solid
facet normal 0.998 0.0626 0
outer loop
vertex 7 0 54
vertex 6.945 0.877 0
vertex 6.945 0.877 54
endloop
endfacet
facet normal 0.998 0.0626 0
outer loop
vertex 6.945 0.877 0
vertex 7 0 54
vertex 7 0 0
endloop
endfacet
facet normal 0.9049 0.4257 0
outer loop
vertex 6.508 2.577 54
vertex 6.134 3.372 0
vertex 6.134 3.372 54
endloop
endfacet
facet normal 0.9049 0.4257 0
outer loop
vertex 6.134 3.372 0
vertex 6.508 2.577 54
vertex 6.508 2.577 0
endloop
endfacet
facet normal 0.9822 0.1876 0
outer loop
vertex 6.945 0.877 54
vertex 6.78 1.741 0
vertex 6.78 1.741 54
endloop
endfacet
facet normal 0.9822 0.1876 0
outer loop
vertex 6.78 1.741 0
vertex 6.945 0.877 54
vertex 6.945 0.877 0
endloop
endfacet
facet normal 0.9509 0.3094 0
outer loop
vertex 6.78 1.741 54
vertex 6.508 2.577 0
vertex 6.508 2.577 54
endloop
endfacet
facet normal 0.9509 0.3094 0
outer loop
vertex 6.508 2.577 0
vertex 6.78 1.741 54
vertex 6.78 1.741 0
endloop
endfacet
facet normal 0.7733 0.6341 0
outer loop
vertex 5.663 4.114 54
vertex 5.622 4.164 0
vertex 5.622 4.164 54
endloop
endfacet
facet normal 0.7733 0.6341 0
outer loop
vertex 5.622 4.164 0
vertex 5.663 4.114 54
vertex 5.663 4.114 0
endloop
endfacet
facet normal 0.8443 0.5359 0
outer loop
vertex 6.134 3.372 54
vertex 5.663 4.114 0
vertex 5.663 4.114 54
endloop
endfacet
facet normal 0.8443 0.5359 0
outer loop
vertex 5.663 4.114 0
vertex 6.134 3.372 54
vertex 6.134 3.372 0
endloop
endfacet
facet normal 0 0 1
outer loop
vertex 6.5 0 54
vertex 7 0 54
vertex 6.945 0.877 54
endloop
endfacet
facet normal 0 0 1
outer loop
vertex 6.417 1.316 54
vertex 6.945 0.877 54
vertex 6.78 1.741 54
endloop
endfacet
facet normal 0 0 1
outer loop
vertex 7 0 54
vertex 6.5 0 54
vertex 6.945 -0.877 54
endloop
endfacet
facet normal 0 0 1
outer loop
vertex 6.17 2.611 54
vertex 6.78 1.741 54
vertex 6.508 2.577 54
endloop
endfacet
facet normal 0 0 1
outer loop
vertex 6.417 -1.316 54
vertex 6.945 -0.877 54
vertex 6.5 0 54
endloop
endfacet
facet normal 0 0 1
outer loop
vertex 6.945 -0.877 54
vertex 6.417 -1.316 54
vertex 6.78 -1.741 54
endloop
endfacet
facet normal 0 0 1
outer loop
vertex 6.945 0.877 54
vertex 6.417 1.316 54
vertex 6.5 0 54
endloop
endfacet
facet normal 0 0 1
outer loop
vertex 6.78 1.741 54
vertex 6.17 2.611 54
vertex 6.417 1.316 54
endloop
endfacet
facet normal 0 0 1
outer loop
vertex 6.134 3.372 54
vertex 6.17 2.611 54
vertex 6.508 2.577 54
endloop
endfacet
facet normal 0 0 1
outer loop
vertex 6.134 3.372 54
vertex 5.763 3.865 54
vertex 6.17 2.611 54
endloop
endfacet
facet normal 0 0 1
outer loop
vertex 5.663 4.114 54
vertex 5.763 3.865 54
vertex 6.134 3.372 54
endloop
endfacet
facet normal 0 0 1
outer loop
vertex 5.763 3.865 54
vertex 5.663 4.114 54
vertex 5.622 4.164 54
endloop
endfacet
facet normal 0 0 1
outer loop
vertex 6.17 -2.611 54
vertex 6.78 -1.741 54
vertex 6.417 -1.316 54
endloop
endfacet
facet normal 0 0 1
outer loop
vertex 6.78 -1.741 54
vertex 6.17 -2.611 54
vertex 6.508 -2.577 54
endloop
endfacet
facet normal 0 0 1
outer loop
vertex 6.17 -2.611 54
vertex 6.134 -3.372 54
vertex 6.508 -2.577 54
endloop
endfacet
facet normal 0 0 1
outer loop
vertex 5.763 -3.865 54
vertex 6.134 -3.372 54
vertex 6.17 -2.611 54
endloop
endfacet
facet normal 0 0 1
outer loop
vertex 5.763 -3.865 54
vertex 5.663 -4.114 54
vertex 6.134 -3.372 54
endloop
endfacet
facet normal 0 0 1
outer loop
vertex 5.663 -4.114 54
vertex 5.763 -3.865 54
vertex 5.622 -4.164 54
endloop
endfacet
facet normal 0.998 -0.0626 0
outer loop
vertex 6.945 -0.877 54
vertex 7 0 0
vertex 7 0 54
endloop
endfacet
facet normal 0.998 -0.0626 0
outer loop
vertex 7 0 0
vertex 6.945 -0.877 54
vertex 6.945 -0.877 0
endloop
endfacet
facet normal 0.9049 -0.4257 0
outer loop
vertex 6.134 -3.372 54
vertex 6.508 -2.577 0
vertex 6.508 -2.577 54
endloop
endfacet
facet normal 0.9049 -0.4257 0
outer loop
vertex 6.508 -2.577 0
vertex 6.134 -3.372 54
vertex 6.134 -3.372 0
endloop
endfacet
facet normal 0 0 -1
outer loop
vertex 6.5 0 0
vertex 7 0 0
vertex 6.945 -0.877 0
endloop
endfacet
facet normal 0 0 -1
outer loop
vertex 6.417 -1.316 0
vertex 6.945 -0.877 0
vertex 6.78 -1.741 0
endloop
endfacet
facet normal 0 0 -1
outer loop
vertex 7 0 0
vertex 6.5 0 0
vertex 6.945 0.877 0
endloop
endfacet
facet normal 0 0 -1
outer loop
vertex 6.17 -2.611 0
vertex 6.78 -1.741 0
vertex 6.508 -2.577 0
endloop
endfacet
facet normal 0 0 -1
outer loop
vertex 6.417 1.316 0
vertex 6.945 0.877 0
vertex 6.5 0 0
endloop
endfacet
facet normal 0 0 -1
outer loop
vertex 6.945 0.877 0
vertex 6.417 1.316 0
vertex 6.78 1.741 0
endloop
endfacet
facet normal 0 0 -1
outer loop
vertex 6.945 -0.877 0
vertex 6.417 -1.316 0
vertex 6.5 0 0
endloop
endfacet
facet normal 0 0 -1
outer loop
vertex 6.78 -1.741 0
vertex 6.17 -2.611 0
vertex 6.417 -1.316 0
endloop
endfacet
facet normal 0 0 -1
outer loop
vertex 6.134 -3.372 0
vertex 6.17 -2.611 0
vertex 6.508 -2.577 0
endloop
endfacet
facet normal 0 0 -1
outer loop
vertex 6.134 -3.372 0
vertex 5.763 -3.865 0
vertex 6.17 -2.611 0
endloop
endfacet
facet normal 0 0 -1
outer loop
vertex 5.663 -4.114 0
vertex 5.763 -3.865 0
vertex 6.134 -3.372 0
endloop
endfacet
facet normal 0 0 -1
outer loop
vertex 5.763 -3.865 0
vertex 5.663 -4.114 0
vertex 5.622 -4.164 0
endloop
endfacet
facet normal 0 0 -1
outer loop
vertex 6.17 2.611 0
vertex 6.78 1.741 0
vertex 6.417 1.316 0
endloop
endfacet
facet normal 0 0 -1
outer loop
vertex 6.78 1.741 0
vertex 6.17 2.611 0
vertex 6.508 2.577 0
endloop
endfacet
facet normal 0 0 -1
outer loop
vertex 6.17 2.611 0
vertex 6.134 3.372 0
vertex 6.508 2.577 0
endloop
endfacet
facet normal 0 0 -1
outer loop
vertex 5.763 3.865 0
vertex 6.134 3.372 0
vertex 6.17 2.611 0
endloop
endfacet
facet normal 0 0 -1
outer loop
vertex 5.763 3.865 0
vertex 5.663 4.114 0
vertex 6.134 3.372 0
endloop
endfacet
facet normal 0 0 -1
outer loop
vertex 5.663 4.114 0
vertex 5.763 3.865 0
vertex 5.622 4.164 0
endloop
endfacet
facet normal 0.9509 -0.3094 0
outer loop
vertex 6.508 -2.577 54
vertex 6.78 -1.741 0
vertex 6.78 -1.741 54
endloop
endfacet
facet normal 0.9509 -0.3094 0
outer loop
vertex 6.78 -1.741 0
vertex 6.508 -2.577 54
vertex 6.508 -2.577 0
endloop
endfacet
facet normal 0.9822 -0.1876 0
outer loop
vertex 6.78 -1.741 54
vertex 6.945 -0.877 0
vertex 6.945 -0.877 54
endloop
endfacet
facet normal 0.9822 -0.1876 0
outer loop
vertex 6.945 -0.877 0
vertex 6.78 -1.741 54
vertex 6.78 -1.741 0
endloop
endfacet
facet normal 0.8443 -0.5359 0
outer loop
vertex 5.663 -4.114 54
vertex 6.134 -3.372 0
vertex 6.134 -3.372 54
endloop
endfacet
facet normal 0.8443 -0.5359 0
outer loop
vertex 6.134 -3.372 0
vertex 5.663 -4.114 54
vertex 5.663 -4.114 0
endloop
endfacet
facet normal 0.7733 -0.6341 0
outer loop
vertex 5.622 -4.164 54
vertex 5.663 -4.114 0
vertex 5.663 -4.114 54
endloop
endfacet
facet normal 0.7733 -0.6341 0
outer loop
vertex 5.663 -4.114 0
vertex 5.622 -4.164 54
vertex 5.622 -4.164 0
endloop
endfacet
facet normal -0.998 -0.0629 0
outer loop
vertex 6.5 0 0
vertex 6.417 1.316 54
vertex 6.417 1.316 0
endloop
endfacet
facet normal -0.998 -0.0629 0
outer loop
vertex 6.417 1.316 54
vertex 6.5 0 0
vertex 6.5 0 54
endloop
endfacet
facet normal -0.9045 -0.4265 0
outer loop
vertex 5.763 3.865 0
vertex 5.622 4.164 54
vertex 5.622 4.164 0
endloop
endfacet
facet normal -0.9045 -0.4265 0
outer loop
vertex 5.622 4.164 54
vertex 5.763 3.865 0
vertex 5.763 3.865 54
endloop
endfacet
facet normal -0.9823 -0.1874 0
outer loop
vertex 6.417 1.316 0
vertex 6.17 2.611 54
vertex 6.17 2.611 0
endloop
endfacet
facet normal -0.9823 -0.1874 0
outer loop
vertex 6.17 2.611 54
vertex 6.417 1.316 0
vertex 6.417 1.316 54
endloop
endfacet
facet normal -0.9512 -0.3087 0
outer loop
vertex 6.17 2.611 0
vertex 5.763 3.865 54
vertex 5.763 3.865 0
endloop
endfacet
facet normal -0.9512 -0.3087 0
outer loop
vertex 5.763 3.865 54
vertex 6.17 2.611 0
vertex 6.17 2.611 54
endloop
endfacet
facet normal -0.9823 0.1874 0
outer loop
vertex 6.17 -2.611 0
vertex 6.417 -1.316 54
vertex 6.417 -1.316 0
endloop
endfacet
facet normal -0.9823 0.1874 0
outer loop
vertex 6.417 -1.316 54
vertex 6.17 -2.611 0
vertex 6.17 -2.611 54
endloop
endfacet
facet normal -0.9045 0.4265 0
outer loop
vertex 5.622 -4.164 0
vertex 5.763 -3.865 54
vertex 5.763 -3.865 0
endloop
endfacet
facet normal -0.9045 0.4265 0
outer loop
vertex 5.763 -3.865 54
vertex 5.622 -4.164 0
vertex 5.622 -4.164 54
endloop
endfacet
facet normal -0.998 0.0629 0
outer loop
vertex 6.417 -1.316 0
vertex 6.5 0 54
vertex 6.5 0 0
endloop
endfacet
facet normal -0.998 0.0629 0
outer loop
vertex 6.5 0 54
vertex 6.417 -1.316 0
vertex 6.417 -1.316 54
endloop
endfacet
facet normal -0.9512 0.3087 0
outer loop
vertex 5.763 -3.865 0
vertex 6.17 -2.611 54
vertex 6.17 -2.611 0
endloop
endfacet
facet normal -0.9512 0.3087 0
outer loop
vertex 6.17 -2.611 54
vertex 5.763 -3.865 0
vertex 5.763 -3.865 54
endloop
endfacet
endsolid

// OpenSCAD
$fn = 50;


difference() {
	union() {
		cylinder(h = 54, r = 7.0000000000);
		translate(v = [-7.0000000000, 0, 0]) {
			cylinder(h = 54, r = 7.0000000000);
		}
	}
	union() {
		cylinder(h = 54, r = 3.2500000000);
		cylinder(h = 54, r = 1.8000000000);
		cylinder(h = 54, r = 1.8000000000);
		cylinder(h = 54, r = 1.8000000000);
		translate(v = [-11.5000000000, 0, 0]) {
			hull() {
				translate(v = [-3.7500000000, 0.0000000000, 0]) {
					cylinder(h = 54, r = 7.5000000000);
				}
				translate(v = [3.7500000000, 0.0000000000, 0]) {
					cylinder(h = 54, r = 7.5000000000);
				}
				translate(v = [-3.7500000000, -0.0000000000, 0]) {
					cylinder(h = 54, r = 7.5000000000);
				}
				translate(v = [3.7500000000, -0.0000000000, 0]) {
					cylinder(h = 54, r = 7.5000000000);
				}
			}
		}
		translate(v = [-4.0000000000, 0, 0.0000000000]) {
			cylinder(h = 54, r = 10.5000000000);
		}
	}
}
